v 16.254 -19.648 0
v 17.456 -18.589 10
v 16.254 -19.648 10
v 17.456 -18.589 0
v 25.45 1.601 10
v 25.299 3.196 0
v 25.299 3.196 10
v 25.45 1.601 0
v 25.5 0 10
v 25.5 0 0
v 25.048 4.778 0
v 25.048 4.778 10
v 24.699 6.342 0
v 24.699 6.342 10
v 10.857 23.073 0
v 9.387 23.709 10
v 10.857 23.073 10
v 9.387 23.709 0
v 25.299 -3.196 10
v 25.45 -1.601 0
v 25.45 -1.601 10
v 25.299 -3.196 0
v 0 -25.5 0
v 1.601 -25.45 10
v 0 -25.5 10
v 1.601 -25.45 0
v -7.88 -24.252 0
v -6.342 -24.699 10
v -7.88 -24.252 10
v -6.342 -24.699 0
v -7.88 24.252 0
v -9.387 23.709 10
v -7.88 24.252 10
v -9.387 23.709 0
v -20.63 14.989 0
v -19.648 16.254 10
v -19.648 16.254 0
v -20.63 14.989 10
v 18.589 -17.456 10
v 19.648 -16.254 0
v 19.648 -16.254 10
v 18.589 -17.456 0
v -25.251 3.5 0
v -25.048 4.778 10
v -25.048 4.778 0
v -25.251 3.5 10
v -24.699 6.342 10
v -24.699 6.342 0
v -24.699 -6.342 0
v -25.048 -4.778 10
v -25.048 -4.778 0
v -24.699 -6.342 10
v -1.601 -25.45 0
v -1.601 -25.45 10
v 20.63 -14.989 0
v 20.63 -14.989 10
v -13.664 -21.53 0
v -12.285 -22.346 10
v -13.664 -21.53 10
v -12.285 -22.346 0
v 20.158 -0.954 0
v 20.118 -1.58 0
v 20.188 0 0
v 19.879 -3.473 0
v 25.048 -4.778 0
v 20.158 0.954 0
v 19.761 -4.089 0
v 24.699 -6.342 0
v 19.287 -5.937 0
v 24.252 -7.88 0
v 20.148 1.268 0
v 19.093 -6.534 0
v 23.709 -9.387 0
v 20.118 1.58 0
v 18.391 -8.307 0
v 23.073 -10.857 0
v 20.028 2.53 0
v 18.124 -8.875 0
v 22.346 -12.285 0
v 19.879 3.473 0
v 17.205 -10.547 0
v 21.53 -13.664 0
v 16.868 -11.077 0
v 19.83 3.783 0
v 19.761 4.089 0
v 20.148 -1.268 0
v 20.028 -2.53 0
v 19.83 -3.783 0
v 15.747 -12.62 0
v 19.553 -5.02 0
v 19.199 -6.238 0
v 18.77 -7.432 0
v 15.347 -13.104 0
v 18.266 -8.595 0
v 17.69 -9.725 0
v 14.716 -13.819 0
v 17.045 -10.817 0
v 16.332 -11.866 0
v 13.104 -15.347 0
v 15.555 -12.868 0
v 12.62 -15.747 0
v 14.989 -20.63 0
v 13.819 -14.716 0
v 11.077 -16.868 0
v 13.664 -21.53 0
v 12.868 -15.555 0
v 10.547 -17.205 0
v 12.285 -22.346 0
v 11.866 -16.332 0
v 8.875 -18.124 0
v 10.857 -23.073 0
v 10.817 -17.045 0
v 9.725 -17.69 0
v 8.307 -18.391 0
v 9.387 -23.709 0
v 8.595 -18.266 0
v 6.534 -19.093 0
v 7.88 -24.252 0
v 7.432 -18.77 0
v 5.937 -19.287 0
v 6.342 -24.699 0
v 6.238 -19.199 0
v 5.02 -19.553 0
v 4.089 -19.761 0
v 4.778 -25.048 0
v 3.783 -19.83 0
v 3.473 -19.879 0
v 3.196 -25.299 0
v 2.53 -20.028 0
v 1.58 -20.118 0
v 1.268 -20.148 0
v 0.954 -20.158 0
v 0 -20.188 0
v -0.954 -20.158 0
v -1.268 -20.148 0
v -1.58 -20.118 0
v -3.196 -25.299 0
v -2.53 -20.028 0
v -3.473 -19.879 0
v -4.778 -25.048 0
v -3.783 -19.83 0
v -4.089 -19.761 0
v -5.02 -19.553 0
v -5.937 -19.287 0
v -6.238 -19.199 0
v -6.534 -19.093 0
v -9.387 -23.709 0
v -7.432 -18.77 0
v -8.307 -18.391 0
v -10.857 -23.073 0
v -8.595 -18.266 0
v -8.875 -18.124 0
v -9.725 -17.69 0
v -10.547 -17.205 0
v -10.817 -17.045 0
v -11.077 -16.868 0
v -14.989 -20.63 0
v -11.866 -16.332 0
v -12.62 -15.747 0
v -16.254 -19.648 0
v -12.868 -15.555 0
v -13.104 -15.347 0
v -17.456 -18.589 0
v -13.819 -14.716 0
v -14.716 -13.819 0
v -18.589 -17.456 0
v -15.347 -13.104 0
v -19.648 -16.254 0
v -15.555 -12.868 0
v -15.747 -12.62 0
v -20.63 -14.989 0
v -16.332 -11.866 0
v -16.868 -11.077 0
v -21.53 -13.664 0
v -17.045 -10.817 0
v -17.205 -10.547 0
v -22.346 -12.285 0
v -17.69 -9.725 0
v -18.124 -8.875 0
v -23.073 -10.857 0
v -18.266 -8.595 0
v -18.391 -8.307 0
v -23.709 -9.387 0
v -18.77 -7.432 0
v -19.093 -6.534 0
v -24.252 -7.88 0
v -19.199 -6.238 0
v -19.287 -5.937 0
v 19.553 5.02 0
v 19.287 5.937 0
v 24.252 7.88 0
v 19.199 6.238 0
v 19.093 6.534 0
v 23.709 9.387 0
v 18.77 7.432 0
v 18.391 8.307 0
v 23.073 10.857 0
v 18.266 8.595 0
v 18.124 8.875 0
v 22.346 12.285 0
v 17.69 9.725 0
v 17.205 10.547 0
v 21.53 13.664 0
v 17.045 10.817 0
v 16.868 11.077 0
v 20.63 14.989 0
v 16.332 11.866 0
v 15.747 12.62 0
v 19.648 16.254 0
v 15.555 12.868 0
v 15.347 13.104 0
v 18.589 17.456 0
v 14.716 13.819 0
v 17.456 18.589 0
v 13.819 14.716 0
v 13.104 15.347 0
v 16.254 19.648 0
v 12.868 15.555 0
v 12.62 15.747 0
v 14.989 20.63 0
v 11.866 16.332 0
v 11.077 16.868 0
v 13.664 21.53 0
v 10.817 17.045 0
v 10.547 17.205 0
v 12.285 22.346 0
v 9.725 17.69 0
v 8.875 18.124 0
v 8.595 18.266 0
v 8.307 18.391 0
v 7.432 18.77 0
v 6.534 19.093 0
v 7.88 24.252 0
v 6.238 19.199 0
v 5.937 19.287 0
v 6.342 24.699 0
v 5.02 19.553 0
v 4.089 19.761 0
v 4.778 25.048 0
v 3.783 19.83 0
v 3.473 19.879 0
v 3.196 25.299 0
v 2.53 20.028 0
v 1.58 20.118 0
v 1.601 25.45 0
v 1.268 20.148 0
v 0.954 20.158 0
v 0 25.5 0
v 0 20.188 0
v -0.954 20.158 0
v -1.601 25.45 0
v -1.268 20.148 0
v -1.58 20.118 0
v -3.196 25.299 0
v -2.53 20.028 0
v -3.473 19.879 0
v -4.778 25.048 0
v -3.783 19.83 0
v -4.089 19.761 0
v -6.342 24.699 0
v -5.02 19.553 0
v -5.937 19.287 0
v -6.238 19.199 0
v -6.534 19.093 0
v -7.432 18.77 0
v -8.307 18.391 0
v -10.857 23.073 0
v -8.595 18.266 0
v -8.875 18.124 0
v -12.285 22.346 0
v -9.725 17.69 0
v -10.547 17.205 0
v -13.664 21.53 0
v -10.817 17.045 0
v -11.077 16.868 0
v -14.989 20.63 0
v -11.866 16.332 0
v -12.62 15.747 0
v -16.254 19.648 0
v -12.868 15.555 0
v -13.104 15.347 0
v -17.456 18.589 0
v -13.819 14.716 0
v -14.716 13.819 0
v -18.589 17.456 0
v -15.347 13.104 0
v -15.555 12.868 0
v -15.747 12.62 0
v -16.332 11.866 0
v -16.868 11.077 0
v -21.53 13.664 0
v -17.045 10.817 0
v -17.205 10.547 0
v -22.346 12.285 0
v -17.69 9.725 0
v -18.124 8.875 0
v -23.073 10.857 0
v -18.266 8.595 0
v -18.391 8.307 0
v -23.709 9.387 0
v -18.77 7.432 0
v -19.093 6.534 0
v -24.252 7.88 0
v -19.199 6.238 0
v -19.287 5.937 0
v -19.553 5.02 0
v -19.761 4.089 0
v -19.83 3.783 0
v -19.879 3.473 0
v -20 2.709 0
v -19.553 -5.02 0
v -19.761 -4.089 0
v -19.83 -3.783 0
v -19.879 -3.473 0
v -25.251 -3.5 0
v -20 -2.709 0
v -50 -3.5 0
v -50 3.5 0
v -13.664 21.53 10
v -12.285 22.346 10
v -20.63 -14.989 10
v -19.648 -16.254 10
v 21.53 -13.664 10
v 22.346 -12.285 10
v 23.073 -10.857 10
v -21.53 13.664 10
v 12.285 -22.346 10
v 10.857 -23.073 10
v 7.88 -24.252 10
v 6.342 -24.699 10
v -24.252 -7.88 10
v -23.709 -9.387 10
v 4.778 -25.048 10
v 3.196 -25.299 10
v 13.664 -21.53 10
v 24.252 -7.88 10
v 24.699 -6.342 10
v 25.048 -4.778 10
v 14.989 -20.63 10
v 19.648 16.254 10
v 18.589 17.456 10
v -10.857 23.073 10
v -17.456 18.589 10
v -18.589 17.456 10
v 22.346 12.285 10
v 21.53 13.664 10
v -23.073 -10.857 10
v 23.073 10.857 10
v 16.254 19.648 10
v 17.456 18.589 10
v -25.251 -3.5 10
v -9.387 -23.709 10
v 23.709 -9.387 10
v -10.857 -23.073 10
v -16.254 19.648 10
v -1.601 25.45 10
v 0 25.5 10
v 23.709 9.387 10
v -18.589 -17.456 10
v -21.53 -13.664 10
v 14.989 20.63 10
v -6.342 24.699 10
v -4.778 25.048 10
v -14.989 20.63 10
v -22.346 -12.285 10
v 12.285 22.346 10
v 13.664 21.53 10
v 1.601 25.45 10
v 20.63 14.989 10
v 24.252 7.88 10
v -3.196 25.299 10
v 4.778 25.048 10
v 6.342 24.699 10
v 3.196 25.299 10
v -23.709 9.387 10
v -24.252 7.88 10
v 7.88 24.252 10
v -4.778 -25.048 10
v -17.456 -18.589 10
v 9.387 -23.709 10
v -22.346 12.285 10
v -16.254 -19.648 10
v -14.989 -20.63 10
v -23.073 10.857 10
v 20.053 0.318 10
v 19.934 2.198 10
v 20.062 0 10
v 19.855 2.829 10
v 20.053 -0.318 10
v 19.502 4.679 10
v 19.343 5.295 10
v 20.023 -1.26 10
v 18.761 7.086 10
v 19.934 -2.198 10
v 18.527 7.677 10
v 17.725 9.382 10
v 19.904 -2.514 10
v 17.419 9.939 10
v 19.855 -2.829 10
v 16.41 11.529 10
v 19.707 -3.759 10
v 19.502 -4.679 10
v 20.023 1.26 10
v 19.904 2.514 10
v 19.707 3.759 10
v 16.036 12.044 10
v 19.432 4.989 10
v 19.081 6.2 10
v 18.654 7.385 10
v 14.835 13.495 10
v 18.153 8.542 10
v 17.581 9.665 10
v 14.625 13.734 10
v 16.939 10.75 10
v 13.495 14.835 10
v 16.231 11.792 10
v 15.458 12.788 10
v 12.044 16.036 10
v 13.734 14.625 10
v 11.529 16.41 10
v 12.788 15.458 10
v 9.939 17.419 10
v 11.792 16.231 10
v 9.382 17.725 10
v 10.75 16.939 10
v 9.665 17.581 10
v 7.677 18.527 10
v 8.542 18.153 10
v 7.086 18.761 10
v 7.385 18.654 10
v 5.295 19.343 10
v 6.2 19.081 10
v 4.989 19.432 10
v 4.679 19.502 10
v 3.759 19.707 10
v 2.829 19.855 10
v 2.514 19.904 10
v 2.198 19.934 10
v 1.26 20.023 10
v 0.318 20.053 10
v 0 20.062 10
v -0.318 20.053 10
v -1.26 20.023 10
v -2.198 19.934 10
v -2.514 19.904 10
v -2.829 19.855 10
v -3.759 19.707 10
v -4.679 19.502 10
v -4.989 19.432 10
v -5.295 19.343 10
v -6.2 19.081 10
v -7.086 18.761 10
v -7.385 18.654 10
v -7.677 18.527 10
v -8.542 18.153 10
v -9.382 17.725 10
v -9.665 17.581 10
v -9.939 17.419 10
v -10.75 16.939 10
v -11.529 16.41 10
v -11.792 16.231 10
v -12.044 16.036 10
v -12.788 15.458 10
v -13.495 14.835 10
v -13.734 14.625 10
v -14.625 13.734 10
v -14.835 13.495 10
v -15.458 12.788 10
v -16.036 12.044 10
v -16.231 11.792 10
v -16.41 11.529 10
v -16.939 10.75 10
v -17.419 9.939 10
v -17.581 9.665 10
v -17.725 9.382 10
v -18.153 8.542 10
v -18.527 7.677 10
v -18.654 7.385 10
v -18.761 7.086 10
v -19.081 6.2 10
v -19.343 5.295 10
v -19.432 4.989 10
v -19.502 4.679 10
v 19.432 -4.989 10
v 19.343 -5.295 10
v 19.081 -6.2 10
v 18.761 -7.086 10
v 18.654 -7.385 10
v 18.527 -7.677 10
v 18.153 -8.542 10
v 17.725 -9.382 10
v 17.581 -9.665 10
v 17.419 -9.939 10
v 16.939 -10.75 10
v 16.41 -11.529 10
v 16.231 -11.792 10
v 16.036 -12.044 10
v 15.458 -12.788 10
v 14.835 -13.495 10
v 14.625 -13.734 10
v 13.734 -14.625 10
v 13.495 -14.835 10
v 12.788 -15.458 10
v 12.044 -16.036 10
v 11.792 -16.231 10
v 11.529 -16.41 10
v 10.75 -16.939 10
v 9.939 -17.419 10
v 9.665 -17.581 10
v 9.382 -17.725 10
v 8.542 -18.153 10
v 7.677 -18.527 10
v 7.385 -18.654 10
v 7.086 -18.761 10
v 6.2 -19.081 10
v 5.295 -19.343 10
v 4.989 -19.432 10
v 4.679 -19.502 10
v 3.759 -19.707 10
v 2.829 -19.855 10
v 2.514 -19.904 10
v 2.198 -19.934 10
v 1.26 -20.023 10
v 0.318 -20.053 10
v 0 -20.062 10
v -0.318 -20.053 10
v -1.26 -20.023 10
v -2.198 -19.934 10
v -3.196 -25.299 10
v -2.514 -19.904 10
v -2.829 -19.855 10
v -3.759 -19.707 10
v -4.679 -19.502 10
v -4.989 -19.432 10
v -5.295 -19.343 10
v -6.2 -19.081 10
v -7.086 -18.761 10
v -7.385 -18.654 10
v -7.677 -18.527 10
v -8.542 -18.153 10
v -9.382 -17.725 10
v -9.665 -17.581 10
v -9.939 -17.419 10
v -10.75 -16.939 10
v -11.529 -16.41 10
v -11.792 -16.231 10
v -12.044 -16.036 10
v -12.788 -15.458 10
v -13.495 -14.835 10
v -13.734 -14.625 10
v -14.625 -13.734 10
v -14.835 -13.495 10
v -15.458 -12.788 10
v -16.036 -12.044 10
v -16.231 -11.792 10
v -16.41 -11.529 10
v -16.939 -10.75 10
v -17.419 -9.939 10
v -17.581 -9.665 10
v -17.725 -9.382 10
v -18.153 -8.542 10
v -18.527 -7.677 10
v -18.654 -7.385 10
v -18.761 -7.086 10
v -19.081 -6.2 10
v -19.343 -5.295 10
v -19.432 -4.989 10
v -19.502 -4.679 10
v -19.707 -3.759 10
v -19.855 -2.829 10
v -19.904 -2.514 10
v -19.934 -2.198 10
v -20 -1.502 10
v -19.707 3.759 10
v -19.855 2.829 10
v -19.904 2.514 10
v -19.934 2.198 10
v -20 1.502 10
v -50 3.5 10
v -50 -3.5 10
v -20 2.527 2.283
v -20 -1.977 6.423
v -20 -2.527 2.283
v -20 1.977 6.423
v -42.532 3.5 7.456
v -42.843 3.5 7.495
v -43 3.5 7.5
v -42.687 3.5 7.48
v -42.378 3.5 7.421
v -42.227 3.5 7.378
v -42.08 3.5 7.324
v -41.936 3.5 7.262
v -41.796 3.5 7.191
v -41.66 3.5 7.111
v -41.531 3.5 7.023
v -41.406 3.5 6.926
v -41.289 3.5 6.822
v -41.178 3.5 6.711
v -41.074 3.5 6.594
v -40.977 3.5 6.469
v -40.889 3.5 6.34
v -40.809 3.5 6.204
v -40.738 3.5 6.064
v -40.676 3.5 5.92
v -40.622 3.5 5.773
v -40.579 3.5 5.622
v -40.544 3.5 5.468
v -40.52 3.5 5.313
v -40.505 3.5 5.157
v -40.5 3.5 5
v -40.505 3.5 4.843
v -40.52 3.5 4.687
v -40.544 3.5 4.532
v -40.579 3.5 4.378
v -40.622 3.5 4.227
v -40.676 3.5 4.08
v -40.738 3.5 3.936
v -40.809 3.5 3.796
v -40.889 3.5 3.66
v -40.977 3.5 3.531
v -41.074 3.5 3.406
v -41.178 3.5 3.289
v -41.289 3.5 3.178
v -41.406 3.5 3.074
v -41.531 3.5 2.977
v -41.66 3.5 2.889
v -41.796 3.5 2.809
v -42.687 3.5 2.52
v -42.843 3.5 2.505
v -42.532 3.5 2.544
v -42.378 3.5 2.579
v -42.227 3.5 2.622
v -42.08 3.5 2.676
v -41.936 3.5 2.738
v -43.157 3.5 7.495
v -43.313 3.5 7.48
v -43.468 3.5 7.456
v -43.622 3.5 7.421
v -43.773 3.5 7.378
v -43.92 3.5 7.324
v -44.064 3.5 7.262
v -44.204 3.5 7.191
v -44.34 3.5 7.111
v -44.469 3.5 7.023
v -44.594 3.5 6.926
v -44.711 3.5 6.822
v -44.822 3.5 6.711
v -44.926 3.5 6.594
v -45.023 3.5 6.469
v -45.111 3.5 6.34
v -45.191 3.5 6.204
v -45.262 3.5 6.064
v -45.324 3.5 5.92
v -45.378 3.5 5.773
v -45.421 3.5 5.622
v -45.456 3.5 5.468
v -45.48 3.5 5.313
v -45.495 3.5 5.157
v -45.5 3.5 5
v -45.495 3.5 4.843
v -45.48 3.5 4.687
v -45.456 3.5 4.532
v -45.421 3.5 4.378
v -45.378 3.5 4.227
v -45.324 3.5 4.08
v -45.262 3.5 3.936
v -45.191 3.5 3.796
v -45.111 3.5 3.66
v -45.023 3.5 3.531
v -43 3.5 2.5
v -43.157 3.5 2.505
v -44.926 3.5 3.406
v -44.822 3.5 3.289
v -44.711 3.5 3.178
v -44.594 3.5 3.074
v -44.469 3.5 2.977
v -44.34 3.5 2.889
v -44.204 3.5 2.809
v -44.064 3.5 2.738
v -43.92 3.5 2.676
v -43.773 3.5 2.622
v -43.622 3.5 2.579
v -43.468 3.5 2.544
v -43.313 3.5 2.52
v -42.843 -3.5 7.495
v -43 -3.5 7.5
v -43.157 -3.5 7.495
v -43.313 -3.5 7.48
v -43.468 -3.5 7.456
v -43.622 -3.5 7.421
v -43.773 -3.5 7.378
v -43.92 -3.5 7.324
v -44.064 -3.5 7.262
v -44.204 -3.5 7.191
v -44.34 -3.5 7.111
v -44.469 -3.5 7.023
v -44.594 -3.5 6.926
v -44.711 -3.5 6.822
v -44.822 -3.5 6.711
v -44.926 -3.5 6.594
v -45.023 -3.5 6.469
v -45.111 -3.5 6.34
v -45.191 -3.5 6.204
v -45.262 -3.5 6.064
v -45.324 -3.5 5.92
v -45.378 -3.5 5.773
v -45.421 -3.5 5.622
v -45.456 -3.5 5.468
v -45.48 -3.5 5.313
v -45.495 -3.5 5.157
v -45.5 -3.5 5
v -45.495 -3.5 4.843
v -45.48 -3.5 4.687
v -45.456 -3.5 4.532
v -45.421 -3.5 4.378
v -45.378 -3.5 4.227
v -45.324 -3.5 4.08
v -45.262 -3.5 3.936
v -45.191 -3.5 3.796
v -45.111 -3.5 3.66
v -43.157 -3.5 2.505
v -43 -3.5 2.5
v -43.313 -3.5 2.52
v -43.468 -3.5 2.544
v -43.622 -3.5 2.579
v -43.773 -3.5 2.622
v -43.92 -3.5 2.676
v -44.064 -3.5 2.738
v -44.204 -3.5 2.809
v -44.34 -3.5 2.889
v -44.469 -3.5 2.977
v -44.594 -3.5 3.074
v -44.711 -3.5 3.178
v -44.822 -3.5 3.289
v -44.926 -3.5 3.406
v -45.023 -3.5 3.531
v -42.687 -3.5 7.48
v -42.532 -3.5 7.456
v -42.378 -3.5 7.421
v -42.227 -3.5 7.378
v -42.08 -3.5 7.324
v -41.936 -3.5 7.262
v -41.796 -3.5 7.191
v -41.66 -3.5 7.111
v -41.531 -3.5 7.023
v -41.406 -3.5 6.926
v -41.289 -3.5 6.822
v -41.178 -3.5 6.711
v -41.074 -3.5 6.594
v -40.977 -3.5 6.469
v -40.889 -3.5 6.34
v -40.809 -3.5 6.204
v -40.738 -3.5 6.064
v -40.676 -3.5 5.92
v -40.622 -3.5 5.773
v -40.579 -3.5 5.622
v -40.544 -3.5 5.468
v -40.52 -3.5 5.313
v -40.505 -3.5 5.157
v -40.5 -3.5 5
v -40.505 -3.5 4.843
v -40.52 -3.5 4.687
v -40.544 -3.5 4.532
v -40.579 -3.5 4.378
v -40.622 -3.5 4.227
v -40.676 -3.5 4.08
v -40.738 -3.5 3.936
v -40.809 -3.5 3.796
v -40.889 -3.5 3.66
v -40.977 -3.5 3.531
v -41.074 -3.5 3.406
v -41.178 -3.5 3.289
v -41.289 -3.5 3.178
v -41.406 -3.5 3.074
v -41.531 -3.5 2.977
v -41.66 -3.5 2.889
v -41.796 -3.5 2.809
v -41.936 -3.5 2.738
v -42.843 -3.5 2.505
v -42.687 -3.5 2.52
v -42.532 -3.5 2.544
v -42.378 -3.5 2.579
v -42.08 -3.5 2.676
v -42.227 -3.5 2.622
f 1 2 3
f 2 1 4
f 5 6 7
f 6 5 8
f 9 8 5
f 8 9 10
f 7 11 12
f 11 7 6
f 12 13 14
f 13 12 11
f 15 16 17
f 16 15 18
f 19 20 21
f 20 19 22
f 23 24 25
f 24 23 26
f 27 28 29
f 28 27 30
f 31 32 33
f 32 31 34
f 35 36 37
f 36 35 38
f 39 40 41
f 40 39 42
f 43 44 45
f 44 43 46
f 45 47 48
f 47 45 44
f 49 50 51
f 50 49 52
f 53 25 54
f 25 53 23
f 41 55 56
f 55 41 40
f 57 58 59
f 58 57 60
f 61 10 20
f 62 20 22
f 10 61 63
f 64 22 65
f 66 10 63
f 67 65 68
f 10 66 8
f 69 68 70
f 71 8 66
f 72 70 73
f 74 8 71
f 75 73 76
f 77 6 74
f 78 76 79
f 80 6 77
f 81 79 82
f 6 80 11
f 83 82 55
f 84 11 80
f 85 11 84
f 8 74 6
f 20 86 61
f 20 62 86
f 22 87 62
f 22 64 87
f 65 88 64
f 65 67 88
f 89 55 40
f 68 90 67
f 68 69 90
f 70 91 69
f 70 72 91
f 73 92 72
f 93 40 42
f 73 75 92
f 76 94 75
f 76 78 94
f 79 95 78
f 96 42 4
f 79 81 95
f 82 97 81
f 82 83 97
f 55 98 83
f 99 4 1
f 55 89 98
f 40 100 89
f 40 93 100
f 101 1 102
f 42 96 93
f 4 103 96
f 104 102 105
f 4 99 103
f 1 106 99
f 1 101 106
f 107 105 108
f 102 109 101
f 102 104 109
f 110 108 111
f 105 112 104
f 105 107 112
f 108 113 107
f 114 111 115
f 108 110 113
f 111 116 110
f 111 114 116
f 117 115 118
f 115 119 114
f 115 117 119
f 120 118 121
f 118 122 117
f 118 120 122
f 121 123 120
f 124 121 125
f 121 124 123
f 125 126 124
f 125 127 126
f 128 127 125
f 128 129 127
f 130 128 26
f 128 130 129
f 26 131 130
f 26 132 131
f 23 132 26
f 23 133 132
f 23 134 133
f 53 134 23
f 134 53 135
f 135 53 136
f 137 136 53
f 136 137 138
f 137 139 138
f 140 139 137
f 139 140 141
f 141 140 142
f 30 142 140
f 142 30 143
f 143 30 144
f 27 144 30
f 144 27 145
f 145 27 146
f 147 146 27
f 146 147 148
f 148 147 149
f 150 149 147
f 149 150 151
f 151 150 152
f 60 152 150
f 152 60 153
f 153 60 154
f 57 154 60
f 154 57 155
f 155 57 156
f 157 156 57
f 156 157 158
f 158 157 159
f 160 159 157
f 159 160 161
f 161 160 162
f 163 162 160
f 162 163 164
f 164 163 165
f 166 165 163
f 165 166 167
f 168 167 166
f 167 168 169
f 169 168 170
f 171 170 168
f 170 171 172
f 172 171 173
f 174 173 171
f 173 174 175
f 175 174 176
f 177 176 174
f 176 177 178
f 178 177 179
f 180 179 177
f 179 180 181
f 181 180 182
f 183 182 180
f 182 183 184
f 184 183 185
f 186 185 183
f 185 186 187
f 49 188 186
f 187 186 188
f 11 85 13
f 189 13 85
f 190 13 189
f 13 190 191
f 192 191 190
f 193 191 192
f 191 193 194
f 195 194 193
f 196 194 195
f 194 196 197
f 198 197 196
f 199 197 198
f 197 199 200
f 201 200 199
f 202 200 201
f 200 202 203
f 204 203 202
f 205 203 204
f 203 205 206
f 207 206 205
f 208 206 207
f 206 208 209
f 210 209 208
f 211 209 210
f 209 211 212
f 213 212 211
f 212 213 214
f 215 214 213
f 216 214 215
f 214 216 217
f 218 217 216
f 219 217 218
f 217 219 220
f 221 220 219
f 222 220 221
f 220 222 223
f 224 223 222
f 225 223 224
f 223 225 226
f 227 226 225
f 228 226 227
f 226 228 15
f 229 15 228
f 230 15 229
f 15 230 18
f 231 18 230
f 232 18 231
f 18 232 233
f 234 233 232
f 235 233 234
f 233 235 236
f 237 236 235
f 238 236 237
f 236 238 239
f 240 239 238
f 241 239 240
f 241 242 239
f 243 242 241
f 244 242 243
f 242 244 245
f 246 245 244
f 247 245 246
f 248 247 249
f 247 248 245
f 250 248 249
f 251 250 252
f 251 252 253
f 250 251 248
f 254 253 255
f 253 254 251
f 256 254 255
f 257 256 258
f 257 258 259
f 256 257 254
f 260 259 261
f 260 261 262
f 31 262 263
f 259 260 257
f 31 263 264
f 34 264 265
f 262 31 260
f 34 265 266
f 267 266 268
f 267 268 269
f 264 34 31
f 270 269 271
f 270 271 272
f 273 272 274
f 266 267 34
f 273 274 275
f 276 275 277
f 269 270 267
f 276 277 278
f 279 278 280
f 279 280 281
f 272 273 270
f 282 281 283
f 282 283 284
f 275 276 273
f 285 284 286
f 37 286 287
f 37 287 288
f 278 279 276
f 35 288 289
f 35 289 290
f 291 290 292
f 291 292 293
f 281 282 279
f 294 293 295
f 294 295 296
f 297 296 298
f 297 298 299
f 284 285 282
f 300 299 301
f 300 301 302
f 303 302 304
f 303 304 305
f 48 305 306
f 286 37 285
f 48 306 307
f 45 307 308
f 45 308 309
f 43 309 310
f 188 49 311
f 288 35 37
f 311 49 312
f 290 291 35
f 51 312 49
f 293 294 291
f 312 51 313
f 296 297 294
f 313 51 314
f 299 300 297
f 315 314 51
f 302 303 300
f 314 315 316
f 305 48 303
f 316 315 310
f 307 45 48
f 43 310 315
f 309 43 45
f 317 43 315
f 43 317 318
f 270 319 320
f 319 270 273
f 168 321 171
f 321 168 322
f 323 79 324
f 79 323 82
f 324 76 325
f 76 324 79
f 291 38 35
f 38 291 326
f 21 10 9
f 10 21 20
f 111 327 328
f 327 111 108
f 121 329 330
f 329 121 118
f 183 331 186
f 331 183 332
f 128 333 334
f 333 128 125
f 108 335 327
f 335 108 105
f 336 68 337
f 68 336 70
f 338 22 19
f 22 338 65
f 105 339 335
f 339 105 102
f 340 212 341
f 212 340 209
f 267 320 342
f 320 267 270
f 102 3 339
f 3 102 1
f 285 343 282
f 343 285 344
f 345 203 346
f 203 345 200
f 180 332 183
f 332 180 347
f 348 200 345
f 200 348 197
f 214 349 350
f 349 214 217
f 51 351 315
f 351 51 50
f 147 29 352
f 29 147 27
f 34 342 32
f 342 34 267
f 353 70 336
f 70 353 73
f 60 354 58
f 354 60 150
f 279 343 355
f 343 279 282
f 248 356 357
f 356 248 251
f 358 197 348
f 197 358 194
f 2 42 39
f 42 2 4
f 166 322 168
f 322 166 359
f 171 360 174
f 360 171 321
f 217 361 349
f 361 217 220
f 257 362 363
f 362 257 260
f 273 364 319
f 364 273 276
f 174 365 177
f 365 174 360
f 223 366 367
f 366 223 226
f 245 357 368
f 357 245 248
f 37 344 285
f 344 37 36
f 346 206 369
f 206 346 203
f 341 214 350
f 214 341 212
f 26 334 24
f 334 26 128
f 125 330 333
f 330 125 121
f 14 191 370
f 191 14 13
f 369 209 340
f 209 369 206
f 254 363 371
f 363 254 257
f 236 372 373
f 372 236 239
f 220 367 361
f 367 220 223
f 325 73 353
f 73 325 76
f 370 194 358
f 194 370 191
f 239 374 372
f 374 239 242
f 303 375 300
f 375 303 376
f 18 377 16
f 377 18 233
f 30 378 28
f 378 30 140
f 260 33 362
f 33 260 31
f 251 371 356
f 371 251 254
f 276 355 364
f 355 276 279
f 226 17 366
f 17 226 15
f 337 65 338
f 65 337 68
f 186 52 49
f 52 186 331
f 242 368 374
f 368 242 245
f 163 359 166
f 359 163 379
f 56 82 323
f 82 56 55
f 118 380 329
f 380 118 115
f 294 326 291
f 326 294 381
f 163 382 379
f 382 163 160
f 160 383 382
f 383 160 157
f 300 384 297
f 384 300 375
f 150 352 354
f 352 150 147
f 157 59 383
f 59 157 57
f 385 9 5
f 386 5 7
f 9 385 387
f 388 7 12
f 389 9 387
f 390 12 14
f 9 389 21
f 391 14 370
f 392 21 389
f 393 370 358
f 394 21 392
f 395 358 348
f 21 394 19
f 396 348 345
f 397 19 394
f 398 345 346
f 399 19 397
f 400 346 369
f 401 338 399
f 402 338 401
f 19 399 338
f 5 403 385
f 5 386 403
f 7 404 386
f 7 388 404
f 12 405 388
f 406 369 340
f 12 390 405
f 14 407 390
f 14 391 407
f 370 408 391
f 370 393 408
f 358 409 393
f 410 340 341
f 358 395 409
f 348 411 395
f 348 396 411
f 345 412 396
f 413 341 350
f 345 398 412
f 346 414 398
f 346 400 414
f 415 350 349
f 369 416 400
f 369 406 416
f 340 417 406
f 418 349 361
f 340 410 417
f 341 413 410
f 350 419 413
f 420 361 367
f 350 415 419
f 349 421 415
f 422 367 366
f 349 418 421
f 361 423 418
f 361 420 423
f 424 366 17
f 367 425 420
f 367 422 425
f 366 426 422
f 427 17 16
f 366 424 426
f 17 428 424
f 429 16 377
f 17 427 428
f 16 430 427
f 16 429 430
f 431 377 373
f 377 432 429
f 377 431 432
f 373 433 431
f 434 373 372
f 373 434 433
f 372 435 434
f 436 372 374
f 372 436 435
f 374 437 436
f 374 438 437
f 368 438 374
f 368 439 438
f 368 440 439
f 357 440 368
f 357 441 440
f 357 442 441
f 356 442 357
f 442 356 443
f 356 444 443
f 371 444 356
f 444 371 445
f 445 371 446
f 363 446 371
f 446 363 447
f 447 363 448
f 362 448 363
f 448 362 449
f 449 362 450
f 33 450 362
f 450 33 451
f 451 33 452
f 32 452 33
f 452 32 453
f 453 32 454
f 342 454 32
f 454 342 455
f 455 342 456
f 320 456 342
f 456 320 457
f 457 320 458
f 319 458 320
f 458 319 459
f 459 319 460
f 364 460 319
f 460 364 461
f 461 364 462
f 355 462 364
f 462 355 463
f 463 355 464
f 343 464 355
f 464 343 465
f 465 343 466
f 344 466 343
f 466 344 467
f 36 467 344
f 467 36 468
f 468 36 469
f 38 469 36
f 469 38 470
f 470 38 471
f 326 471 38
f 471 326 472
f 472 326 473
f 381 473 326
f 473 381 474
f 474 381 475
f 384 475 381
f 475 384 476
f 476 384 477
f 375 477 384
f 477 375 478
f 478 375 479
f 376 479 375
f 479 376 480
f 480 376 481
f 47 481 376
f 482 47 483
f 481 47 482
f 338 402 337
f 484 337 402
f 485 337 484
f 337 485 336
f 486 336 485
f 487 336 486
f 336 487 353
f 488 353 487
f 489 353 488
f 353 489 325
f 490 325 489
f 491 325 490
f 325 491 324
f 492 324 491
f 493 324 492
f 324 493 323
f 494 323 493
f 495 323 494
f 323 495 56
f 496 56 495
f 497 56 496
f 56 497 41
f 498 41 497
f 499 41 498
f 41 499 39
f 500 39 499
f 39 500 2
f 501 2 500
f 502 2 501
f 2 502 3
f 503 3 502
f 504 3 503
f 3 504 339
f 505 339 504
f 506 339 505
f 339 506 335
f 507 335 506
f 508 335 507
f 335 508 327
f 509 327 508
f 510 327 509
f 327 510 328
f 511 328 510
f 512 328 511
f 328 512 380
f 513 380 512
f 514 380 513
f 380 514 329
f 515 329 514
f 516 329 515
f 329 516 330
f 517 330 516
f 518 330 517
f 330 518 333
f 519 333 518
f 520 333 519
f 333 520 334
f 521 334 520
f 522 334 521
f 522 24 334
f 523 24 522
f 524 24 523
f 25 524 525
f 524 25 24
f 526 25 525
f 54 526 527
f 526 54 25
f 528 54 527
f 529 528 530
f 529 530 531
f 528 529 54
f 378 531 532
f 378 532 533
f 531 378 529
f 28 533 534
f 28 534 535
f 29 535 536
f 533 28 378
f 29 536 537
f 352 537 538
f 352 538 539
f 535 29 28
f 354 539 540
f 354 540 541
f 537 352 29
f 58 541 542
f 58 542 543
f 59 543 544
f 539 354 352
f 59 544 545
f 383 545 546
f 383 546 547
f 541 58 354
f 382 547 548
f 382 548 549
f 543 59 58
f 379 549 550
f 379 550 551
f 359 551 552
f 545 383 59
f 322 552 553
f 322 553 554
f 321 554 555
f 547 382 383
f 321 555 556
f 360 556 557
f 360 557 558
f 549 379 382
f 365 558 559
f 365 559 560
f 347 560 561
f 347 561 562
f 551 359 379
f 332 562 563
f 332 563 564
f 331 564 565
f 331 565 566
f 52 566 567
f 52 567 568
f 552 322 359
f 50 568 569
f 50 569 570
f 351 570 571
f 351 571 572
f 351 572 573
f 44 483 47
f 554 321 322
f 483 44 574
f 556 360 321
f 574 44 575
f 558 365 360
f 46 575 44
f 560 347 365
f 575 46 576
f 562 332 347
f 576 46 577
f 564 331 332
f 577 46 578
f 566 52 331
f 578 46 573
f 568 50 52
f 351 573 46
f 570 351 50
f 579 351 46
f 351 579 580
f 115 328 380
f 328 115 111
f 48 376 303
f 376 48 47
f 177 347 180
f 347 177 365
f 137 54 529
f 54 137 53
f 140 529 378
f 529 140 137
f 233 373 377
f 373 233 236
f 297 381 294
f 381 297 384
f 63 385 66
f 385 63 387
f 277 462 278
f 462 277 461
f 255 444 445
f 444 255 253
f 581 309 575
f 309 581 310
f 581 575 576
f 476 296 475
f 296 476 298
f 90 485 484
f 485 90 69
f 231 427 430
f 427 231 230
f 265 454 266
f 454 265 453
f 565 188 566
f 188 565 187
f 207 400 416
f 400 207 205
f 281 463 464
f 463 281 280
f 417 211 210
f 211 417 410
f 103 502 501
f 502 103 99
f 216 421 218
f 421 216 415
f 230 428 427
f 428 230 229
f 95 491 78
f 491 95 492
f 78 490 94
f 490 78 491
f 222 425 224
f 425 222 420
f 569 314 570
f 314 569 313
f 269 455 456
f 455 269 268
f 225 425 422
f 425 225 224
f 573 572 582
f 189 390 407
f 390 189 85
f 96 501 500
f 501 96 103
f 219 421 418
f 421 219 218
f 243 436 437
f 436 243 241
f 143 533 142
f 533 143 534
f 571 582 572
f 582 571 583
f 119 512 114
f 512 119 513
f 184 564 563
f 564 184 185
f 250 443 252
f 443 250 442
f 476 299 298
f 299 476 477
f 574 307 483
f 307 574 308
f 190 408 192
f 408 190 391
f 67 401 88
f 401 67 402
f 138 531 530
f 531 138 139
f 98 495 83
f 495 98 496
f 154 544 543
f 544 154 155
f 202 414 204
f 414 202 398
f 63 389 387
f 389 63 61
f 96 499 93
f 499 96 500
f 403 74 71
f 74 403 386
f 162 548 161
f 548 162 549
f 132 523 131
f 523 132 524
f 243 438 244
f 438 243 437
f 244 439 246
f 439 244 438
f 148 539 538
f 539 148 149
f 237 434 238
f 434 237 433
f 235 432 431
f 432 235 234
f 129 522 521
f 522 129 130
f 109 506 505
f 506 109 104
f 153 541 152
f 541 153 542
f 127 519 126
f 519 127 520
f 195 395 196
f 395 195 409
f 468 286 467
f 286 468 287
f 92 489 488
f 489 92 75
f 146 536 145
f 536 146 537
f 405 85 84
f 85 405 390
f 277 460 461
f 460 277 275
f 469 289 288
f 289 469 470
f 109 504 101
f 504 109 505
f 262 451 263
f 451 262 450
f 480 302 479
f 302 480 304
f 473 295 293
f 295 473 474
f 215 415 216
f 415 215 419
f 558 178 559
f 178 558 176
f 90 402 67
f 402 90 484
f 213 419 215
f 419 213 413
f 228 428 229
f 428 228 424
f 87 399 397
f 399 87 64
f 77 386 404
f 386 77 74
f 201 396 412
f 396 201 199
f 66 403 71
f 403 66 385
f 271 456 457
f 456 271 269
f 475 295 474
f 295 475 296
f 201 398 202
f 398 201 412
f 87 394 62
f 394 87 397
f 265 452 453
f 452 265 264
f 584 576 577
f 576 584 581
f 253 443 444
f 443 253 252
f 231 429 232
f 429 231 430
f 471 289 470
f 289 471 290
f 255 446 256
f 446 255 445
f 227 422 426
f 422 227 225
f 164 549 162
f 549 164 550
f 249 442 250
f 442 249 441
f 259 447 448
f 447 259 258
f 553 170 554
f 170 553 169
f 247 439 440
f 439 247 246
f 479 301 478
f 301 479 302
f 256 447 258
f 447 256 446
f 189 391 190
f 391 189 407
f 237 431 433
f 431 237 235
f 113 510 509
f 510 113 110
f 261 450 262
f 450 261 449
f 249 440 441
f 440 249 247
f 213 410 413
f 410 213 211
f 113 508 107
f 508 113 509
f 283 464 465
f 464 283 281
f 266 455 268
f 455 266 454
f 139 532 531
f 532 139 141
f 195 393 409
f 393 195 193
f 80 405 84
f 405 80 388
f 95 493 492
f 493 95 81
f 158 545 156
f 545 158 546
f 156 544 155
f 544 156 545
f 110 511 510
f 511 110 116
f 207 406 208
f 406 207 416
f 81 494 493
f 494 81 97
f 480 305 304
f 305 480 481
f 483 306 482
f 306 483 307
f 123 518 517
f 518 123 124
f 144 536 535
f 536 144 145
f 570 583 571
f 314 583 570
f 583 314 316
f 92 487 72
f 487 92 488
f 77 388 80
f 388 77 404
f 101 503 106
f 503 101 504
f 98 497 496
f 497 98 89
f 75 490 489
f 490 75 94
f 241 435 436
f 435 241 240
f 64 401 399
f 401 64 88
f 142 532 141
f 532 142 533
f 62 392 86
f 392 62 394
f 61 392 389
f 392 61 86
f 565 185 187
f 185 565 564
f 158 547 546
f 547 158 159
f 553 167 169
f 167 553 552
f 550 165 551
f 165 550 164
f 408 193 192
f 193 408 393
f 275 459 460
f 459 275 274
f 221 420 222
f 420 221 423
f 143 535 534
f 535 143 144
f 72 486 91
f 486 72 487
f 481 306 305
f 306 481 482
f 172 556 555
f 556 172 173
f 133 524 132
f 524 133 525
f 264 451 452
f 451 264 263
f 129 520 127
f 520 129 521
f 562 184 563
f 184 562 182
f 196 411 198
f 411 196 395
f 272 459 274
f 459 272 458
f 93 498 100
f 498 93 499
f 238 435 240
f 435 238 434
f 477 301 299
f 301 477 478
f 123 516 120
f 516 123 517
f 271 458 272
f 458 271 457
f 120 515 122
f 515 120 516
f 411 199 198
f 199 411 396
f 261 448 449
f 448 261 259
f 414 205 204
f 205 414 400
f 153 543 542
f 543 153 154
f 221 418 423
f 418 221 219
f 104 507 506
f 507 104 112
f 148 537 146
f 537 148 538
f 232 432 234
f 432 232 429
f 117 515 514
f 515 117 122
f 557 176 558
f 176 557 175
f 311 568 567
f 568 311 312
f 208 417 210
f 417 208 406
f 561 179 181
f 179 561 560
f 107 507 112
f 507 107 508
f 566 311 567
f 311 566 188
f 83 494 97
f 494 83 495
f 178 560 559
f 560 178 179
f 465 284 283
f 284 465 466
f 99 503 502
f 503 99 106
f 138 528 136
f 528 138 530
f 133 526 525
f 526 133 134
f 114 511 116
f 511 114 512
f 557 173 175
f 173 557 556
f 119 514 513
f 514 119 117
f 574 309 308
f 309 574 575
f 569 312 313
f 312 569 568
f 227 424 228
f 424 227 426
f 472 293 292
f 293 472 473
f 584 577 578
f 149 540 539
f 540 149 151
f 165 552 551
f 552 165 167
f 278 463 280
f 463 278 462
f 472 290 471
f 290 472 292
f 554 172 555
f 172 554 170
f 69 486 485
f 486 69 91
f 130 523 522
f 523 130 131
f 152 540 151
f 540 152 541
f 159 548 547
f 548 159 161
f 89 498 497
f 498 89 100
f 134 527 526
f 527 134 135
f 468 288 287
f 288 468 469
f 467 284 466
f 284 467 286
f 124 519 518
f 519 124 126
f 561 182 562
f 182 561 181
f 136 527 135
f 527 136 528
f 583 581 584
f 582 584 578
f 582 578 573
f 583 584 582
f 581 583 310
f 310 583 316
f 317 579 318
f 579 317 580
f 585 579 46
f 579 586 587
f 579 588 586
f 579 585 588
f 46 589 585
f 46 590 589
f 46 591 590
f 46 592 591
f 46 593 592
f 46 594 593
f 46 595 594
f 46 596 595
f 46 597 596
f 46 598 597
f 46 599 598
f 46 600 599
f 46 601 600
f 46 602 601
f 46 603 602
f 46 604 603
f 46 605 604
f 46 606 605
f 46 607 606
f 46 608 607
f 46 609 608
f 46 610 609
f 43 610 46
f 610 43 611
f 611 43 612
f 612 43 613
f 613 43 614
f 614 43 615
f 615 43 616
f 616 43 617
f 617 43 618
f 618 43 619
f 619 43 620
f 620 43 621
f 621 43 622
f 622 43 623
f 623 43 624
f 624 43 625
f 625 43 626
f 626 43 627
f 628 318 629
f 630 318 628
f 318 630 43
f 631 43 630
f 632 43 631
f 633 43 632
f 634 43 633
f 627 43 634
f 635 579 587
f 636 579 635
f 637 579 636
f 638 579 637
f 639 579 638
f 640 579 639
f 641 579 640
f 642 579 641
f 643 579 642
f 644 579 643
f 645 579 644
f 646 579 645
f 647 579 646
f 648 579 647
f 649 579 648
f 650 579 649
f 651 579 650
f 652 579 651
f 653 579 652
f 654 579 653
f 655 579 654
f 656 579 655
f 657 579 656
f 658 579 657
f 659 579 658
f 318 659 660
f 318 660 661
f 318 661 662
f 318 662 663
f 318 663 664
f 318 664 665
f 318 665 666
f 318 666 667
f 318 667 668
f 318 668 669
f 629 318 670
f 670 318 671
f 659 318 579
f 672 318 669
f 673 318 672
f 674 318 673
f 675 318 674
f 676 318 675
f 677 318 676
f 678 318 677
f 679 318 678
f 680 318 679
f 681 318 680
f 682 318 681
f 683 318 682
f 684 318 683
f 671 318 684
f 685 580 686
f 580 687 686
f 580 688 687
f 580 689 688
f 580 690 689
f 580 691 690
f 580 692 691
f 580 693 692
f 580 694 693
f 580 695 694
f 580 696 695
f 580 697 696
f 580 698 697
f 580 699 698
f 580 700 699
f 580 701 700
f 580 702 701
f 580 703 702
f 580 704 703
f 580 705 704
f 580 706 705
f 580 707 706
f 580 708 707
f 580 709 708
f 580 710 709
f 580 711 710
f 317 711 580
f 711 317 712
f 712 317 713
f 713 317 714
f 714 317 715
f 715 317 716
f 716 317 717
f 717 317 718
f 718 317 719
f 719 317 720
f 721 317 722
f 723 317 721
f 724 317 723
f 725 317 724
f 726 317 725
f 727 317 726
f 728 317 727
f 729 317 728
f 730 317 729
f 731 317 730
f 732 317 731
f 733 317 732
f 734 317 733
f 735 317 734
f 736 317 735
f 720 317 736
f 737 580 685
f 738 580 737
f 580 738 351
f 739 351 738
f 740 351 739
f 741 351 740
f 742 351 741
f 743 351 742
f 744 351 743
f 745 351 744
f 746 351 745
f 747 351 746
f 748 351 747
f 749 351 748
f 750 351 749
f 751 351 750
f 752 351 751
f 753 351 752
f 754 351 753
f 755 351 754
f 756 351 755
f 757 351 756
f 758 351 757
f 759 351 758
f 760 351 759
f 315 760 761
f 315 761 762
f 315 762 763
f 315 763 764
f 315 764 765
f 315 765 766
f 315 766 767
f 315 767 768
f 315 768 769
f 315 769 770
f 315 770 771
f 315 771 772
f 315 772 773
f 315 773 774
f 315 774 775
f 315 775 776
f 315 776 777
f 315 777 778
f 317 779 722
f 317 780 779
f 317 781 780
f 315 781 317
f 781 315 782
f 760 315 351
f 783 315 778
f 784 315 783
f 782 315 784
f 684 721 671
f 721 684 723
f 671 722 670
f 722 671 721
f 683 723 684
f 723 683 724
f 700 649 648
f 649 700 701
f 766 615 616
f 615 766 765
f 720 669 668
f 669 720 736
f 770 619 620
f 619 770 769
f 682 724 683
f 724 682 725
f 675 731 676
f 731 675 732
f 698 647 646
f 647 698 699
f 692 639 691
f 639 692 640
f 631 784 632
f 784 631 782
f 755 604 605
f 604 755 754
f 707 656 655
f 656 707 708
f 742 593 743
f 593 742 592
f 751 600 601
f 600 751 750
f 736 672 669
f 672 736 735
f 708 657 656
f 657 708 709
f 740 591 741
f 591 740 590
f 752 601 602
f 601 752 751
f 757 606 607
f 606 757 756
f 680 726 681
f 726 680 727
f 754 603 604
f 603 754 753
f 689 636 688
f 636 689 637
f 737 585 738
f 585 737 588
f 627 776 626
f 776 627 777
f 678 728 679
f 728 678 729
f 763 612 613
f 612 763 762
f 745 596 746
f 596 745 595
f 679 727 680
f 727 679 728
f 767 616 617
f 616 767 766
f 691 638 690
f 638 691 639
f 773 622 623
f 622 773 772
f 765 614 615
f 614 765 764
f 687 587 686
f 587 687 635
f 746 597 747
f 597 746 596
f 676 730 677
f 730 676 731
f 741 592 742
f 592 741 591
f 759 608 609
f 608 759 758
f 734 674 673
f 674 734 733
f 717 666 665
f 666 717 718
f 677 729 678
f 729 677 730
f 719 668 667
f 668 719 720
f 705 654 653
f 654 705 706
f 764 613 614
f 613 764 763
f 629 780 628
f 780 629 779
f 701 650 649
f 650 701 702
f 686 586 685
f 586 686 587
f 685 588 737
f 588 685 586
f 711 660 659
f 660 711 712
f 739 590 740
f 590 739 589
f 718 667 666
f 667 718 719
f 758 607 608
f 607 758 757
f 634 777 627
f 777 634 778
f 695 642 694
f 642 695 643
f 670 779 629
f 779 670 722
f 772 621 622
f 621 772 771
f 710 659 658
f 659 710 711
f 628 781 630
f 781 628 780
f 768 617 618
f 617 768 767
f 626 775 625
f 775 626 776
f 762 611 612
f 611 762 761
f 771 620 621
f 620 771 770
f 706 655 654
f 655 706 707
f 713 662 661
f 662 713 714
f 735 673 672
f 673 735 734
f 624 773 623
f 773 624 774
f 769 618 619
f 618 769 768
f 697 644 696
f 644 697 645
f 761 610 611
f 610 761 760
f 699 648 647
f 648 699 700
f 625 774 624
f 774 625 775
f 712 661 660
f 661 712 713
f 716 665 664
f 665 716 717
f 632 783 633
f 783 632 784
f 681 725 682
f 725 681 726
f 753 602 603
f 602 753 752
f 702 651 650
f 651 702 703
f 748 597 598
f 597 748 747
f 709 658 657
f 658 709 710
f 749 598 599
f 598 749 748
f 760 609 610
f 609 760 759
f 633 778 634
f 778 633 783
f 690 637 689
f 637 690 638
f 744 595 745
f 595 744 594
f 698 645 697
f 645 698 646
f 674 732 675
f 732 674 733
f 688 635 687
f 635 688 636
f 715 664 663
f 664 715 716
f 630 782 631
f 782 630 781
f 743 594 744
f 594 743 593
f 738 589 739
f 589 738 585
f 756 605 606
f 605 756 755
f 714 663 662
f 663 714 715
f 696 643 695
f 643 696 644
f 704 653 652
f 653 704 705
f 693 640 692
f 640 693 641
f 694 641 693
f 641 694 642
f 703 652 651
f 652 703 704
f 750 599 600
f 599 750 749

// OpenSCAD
$fn=100;

difference()
{
    cylinder(10, 25.5, 25.5);
    translate([0, 0, -5])
    {
        cylinder(20, 20.25, 20);
    }
}


difference()
{

    union()
    {
         translate([-50, -3.5, 0])
         {
             cube([30, 7, 10]);
         }
     };

    union()
    {
        translate([-43, -5, 5])
        {
            rotate([0, 90, 90])
            {
                cylinder(10, 2.5, 2.5);
            }
        }
    };
}
